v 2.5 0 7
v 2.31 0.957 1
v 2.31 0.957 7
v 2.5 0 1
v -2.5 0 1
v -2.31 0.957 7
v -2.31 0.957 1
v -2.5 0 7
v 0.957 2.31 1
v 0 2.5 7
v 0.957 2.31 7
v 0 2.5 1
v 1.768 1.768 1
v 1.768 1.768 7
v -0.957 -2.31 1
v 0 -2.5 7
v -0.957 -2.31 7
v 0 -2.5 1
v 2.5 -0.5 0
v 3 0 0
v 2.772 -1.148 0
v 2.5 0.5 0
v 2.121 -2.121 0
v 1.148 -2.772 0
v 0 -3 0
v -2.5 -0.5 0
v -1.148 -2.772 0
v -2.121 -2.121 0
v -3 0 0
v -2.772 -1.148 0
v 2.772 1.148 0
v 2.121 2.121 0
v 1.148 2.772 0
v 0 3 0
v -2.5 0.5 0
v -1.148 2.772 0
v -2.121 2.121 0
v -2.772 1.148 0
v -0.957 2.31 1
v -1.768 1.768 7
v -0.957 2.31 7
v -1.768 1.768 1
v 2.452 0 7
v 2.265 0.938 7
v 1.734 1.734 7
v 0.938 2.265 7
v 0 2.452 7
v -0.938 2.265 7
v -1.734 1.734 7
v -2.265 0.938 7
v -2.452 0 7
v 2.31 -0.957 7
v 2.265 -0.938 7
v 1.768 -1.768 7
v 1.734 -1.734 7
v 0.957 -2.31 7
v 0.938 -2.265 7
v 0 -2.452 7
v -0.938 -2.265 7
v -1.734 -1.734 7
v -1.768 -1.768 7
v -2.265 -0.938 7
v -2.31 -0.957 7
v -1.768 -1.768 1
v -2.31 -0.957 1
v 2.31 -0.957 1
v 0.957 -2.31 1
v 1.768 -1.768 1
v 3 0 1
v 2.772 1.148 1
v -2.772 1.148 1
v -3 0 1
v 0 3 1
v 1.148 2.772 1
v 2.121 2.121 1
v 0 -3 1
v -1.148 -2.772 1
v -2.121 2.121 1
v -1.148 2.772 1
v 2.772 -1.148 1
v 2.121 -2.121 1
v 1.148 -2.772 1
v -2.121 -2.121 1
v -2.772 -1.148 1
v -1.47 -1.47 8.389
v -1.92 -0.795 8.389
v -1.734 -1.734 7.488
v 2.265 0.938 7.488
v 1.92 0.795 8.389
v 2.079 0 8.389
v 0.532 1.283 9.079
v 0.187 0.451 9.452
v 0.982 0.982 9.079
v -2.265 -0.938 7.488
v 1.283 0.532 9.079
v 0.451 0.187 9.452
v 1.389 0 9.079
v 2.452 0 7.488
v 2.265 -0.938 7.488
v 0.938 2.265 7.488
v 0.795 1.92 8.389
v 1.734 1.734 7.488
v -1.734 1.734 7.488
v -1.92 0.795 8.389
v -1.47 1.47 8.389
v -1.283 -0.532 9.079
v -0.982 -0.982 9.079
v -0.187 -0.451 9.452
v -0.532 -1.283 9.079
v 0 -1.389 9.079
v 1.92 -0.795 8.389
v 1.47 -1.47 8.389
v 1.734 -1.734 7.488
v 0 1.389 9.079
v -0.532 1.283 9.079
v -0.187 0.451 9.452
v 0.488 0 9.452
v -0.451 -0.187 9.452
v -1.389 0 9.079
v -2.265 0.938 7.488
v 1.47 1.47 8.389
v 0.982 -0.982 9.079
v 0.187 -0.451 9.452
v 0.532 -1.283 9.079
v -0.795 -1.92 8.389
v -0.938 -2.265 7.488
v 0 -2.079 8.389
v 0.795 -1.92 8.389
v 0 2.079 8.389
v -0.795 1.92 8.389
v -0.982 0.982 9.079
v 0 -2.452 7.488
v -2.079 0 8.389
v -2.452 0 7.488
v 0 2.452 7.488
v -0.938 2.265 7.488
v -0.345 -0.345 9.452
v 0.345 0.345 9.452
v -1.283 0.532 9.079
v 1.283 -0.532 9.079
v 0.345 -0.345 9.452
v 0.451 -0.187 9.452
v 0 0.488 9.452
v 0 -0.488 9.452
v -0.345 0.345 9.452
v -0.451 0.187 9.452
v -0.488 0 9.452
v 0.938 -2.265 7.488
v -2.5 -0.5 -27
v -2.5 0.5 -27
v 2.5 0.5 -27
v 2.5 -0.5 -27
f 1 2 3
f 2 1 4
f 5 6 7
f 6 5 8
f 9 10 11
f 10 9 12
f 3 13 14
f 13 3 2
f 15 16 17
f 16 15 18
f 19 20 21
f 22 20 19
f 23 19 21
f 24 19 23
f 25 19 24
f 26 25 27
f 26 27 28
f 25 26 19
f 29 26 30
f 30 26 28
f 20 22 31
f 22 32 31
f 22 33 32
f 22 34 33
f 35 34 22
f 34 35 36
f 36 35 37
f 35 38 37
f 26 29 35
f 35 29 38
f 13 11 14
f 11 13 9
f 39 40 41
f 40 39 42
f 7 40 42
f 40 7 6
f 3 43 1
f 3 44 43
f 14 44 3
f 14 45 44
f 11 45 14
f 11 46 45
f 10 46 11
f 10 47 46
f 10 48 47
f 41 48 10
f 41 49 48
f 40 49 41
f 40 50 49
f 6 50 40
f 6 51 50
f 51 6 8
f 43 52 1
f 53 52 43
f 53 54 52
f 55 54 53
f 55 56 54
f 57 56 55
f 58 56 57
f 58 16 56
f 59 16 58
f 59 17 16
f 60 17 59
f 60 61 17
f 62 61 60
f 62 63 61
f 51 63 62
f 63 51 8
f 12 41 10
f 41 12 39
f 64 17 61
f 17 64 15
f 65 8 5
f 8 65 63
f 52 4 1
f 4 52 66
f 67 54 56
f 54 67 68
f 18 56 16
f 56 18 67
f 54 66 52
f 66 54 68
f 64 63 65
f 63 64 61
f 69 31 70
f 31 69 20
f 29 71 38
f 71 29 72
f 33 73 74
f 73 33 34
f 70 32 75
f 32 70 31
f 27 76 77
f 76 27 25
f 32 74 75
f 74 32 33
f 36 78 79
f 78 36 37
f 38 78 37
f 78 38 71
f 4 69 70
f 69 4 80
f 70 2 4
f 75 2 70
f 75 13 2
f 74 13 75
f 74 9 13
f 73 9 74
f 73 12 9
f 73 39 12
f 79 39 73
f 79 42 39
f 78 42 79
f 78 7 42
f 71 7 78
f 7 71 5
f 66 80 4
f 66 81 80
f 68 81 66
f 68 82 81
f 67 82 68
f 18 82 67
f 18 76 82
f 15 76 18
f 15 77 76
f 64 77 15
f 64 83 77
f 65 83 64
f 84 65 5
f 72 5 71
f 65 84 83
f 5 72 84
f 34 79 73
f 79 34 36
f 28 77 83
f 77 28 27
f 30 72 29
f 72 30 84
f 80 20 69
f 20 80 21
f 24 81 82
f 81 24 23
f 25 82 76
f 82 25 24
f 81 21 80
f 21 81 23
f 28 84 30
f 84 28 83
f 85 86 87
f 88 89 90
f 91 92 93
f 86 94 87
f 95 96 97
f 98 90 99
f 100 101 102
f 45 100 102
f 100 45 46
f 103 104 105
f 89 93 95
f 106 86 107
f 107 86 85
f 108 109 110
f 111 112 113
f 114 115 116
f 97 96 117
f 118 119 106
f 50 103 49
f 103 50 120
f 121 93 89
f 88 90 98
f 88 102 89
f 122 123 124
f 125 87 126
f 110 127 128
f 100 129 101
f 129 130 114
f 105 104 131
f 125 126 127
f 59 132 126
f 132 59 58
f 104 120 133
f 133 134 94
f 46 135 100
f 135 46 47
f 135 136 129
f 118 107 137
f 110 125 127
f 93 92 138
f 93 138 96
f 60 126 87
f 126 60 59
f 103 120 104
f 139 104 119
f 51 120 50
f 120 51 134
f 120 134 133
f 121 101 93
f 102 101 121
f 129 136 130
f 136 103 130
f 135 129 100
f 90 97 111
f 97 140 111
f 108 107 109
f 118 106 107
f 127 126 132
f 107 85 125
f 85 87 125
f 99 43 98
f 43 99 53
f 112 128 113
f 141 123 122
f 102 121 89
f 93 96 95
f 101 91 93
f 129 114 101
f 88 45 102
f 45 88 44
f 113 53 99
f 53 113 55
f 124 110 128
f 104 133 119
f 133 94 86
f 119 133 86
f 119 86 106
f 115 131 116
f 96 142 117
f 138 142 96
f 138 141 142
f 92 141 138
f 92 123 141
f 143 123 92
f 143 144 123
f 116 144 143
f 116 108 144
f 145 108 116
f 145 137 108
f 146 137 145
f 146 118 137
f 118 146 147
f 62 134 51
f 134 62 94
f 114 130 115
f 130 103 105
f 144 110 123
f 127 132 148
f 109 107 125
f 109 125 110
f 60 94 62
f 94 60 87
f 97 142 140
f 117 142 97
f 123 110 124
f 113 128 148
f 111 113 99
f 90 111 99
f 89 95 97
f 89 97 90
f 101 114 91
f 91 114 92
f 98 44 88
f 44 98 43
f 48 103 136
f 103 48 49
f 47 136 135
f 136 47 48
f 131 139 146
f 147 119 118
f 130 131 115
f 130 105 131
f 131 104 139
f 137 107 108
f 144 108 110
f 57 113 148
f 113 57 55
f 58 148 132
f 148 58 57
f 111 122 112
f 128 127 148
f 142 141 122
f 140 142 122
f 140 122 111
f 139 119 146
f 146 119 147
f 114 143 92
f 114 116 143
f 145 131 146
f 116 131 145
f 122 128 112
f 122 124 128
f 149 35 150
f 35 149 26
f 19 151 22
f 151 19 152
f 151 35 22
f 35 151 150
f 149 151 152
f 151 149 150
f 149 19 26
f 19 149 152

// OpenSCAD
// A RGB color LED
// Part of http://vor.space by Futurice

$fn = 16;

radius = 5/2;
height = 7;

ridge_radius = 6/2;
ridge_height = 1;

pin_length = 27;
pin_width = 1;

color("red") center();
color("blue") ridge();
color("white") lens();
color("grey") pins();

module center() {
    cylinder(r=radius, h=height);
}

module ridge() {
    cylinder(r=ridge_radius, h=ridge_height);
}

module lens() {
    translate([0, 0, height]) sphere(r=radius);
}

module pins() {
    translate([-radius, -pin_width/2, -pin_length]) cube([2*radius, pin_width, pin_length]);
}
